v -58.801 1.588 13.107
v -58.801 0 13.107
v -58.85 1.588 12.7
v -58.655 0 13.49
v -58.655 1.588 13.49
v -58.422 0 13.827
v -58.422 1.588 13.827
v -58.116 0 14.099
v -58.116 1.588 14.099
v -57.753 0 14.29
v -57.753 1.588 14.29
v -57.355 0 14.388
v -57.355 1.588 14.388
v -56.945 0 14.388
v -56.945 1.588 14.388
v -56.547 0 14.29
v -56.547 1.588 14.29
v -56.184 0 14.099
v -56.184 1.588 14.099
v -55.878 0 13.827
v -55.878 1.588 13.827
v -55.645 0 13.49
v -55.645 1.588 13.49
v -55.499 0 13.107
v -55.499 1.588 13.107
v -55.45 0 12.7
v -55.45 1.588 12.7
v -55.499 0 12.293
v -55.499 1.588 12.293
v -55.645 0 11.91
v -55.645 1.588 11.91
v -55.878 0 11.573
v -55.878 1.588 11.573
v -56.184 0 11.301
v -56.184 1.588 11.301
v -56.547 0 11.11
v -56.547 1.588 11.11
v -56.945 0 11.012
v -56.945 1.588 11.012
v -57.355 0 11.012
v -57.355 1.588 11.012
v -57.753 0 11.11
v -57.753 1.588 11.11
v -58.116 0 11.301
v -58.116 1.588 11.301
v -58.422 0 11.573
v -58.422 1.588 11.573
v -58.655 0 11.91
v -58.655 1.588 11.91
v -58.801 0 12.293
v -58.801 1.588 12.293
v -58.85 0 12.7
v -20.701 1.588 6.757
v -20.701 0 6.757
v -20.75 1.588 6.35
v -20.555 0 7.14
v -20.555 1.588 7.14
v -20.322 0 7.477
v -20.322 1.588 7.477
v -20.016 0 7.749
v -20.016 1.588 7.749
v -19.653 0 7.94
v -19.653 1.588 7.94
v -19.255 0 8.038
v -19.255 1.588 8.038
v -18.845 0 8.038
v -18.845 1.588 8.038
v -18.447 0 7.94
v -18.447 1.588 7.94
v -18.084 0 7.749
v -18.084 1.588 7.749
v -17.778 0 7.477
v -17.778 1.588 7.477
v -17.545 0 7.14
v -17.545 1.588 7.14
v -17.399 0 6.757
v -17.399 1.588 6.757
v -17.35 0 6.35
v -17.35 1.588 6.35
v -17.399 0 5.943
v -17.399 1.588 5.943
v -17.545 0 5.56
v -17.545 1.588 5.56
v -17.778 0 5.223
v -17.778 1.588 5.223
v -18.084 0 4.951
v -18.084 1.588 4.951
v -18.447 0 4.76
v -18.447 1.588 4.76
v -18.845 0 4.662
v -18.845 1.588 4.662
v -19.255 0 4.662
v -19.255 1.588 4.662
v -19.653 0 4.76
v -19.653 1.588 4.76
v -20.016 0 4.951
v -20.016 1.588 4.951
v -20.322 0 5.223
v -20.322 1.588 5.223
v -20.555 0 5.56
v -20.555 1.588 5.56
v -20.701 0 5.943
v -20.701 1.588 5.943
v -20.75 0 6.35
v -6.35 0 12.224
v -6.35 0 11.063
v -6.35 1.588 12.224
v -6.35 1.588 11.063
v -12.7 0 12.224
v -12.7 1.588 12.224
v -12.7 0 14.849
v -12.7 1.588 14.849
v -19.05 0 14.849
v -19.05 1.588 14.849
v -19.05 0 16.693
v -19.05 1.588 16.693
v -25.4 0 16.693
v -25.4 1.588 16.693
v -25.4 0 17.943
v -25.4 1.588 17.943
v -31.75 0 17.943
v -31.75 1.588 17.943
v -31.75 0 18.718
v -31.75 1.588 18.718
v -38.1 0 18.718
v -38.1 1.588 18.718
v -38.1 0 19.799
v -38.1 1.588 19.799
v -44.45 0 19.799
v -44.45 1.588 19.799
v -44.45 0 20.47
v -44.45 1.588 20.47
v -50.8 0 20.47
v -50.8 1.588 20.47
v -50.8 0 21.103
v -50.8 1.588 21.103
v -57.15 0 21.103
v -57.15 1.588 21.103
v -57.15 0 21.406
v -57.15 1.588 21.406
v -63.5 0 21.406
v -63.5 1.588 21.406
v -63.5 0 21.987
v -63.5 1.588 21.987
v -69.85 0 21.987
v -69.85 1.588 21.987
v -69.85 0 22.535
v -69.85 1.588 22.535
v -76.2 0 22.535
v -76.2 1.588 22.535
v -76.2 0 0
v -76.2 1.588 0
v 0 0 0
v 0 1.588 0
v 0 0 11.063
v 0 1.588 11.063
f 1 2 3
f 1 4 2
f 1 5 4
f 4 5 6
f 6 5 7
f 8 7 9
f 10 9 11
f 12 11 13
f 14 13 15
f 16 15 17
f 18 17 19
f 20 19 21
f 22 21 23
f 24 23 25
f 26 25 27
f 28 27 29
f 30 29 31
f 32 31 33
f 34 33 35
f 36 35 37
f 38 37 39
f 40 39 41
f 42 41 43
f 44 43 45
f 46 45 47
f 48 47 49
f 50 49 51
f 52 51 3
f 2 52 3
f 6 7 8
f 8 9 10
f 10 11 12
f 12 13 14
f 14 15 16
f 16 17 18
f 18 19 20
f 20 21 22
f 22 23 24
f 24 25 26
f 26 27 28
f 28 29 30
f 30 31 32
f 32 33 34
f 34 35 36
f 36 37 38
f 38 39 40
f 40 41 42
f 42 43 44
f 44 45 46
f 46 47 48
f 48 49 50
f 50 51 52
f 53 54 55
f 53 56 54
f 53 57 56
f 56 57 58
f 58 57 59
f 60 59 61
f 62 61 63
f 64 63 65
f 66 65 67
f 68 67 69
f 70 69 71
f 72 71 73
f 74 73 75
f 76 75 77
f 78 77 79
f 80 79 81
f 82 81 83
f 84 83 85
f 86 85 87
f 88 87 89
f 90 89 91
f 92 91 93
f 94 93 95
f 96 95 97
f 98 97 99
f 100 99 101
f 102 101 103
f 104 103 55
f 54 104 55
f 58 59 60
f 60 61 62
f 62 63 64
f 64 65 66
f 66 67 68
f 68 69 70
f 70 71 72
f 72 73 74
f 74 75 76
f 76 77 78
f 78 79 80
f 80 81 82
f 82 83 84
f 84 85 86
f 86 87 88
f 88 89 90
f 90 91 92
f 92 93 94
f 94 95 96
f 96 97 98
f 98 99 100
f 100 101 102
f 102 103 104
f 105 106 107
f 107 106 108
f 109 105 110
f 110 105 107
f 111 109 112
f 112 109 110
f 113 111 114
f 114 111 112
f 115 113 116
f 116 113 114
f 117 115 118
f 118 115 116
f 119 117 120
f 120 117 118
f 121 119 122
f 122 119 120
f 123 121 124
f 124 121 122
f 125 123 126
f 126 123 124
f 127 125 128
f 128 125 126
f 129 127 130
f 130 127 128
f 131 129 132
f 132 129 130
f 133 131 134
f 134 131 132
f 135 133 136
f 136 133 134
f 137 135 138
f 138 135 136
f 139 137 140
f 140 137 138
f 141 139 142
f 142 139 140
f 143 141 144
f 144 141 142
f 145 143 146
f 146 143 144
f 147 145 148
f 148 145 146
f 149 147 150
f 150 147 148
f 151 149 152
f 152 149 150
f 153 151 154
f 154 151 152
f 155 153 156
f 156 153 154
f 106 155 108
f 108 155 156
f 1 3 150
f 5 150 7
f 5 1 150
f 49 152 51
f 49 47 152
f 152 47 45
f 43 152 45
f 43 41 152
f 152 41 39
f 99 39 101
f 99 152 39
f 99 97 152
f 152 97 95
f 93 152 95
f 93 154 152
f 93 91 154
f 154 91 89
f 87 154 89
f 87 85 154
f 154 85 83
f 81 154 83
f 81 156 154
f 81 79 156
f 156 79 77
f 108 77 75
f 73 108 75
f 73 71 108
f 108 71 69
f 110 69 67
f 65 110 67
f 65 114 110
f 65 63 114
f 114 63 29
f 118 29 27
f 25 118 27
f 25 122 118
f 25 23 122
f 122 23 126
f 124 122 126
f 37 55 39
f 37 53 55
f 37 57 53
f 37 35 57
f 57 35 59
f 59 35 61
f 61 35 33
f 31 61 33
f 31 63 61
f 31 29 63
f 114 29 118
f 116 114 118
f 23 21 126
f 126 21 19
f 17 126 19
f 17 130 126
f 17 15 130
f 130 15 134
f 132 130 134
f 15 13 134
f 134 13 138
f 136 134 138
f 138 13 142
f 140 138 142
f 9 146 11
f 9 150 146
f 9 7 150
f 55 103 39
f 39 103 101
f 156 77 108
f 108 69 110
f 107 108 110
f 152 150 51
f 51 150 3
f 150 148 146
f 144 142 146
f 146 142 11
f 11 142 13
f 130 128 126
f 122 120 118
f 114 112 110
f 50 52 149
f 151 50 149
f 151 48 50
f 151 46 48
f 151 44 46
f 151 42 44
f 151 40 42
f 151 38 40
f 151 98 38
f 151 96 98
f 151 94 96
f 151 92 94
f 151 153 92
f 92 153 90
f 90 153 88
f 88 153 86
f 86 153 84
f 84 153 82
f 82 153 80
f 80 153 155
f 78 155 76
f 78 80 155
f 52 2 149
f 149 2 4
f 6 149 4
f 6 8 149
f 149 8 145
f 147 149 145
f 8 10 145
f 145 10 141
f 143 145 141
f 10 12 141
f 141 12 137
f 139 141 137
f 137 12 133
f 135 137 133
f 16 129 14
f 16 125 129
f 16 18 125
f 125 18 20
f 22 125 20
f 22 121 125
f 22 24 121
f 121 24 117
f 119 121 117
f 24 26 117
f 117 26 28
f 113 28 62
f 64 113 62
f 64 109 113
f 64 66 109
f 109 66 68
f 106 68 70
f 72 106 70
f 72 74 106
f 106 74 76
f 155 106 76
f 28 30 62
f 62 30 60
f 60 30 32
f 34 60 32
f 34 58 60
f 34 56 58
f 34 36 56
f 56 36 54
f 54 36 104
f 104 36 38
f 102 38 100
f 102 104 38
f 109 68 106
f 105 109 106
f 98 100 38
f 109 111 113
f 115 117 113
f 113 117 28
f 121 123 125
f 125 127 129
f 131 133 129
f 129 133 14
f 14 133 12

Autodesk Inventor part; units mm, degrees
ref_plane "YZ Plane" through (0, 0, 0) normal (1, 0, 0) x (0, 1, 0)
ref_plane "XZ Plane" through (0, 0, 0) normal (0, 1, 0) x (-1, 0, 0)
ref_plane "XY Plane" through (0, 0, 0) normal (0, 0, 1) x (1, 0, 0)
sketch "Sketch1" plane through (0, 0, 0) normal (0, 1, 0) x (-1, 0, 0)
  line L0 (6.35, 11.0627) -> (0, 11.0627)
  line L1 (0, 11.0627) -> (0, 0)
  line L2 (0, 0) -> (76.2, 0)
  line L3 (6.35, 11.0627) -> (6.35, 12.2238)
  line L4 (6.35, 12.2238) -> (12.7, 12.2238)
  line L5 (12.7, 12.2238) -> (12.7, 14.8493)
  line L6 (12.7, 14.8493) -> (19.05, 14.8493)
  line L7 (19.05, 14.8493) -> (19.05, 16.6932)
  line L8 (19.05, 16.6932) -> (25.4, 16.6932)
  line L9 (25.4, 16.6932) -> (25.4, 17.9429)
  line L10 (25.4, 17.9429) -> (31.75, 17.9429)
  line L11 (31.75, 17.9429) -> (31.75, 18.7178)
  line L12 (31.75, 18.7178) -> (38.1, 18.7178)
  line L13 (38.1, 18.7178) -> (38.1, 19.7994)
  line L14 (38.1, 19.7994) -> (44.45, 19.7994)
  line L15 (44.45, 19.7994) -> (44.45, 20.4702)
  line L16 (44.45, 20.4702) -> (50.8, 20.4702)
  line L17 (50.8, 20.4702) -> (50.8, 21.1032)
  line L18 (50.8, 21.1032) -> (57.15, 21.1032)
  line L19 (57.15, 21.1032) -> (57.15, 21.4063)
  line L20 (57.15, 21.4063) -> (63.5, 21.4063)
  line L21 (63.5, 21.4063) -> (63.5, 21.9869)
  line L22 (63.5, 21.9869) -> (69.85, 21.9869)
  line L23 (69.85, 21.9869) -> (69.85, 22.5348)
  line L24 (69.85, 22.5348) -> (76.2, 22.5348)
  line L25 (76.2, 0) -> (76.2, 22.5348)
  circle A0 centre (19.05, 6.35) radius 1.7
  circle A1 centre (57.15, 12.7) radius 1.7
extrude "Extrusion1" add sketch "Sketch1" along normal blind 1.5875
properties part number "twinkle_twinkle_base"
